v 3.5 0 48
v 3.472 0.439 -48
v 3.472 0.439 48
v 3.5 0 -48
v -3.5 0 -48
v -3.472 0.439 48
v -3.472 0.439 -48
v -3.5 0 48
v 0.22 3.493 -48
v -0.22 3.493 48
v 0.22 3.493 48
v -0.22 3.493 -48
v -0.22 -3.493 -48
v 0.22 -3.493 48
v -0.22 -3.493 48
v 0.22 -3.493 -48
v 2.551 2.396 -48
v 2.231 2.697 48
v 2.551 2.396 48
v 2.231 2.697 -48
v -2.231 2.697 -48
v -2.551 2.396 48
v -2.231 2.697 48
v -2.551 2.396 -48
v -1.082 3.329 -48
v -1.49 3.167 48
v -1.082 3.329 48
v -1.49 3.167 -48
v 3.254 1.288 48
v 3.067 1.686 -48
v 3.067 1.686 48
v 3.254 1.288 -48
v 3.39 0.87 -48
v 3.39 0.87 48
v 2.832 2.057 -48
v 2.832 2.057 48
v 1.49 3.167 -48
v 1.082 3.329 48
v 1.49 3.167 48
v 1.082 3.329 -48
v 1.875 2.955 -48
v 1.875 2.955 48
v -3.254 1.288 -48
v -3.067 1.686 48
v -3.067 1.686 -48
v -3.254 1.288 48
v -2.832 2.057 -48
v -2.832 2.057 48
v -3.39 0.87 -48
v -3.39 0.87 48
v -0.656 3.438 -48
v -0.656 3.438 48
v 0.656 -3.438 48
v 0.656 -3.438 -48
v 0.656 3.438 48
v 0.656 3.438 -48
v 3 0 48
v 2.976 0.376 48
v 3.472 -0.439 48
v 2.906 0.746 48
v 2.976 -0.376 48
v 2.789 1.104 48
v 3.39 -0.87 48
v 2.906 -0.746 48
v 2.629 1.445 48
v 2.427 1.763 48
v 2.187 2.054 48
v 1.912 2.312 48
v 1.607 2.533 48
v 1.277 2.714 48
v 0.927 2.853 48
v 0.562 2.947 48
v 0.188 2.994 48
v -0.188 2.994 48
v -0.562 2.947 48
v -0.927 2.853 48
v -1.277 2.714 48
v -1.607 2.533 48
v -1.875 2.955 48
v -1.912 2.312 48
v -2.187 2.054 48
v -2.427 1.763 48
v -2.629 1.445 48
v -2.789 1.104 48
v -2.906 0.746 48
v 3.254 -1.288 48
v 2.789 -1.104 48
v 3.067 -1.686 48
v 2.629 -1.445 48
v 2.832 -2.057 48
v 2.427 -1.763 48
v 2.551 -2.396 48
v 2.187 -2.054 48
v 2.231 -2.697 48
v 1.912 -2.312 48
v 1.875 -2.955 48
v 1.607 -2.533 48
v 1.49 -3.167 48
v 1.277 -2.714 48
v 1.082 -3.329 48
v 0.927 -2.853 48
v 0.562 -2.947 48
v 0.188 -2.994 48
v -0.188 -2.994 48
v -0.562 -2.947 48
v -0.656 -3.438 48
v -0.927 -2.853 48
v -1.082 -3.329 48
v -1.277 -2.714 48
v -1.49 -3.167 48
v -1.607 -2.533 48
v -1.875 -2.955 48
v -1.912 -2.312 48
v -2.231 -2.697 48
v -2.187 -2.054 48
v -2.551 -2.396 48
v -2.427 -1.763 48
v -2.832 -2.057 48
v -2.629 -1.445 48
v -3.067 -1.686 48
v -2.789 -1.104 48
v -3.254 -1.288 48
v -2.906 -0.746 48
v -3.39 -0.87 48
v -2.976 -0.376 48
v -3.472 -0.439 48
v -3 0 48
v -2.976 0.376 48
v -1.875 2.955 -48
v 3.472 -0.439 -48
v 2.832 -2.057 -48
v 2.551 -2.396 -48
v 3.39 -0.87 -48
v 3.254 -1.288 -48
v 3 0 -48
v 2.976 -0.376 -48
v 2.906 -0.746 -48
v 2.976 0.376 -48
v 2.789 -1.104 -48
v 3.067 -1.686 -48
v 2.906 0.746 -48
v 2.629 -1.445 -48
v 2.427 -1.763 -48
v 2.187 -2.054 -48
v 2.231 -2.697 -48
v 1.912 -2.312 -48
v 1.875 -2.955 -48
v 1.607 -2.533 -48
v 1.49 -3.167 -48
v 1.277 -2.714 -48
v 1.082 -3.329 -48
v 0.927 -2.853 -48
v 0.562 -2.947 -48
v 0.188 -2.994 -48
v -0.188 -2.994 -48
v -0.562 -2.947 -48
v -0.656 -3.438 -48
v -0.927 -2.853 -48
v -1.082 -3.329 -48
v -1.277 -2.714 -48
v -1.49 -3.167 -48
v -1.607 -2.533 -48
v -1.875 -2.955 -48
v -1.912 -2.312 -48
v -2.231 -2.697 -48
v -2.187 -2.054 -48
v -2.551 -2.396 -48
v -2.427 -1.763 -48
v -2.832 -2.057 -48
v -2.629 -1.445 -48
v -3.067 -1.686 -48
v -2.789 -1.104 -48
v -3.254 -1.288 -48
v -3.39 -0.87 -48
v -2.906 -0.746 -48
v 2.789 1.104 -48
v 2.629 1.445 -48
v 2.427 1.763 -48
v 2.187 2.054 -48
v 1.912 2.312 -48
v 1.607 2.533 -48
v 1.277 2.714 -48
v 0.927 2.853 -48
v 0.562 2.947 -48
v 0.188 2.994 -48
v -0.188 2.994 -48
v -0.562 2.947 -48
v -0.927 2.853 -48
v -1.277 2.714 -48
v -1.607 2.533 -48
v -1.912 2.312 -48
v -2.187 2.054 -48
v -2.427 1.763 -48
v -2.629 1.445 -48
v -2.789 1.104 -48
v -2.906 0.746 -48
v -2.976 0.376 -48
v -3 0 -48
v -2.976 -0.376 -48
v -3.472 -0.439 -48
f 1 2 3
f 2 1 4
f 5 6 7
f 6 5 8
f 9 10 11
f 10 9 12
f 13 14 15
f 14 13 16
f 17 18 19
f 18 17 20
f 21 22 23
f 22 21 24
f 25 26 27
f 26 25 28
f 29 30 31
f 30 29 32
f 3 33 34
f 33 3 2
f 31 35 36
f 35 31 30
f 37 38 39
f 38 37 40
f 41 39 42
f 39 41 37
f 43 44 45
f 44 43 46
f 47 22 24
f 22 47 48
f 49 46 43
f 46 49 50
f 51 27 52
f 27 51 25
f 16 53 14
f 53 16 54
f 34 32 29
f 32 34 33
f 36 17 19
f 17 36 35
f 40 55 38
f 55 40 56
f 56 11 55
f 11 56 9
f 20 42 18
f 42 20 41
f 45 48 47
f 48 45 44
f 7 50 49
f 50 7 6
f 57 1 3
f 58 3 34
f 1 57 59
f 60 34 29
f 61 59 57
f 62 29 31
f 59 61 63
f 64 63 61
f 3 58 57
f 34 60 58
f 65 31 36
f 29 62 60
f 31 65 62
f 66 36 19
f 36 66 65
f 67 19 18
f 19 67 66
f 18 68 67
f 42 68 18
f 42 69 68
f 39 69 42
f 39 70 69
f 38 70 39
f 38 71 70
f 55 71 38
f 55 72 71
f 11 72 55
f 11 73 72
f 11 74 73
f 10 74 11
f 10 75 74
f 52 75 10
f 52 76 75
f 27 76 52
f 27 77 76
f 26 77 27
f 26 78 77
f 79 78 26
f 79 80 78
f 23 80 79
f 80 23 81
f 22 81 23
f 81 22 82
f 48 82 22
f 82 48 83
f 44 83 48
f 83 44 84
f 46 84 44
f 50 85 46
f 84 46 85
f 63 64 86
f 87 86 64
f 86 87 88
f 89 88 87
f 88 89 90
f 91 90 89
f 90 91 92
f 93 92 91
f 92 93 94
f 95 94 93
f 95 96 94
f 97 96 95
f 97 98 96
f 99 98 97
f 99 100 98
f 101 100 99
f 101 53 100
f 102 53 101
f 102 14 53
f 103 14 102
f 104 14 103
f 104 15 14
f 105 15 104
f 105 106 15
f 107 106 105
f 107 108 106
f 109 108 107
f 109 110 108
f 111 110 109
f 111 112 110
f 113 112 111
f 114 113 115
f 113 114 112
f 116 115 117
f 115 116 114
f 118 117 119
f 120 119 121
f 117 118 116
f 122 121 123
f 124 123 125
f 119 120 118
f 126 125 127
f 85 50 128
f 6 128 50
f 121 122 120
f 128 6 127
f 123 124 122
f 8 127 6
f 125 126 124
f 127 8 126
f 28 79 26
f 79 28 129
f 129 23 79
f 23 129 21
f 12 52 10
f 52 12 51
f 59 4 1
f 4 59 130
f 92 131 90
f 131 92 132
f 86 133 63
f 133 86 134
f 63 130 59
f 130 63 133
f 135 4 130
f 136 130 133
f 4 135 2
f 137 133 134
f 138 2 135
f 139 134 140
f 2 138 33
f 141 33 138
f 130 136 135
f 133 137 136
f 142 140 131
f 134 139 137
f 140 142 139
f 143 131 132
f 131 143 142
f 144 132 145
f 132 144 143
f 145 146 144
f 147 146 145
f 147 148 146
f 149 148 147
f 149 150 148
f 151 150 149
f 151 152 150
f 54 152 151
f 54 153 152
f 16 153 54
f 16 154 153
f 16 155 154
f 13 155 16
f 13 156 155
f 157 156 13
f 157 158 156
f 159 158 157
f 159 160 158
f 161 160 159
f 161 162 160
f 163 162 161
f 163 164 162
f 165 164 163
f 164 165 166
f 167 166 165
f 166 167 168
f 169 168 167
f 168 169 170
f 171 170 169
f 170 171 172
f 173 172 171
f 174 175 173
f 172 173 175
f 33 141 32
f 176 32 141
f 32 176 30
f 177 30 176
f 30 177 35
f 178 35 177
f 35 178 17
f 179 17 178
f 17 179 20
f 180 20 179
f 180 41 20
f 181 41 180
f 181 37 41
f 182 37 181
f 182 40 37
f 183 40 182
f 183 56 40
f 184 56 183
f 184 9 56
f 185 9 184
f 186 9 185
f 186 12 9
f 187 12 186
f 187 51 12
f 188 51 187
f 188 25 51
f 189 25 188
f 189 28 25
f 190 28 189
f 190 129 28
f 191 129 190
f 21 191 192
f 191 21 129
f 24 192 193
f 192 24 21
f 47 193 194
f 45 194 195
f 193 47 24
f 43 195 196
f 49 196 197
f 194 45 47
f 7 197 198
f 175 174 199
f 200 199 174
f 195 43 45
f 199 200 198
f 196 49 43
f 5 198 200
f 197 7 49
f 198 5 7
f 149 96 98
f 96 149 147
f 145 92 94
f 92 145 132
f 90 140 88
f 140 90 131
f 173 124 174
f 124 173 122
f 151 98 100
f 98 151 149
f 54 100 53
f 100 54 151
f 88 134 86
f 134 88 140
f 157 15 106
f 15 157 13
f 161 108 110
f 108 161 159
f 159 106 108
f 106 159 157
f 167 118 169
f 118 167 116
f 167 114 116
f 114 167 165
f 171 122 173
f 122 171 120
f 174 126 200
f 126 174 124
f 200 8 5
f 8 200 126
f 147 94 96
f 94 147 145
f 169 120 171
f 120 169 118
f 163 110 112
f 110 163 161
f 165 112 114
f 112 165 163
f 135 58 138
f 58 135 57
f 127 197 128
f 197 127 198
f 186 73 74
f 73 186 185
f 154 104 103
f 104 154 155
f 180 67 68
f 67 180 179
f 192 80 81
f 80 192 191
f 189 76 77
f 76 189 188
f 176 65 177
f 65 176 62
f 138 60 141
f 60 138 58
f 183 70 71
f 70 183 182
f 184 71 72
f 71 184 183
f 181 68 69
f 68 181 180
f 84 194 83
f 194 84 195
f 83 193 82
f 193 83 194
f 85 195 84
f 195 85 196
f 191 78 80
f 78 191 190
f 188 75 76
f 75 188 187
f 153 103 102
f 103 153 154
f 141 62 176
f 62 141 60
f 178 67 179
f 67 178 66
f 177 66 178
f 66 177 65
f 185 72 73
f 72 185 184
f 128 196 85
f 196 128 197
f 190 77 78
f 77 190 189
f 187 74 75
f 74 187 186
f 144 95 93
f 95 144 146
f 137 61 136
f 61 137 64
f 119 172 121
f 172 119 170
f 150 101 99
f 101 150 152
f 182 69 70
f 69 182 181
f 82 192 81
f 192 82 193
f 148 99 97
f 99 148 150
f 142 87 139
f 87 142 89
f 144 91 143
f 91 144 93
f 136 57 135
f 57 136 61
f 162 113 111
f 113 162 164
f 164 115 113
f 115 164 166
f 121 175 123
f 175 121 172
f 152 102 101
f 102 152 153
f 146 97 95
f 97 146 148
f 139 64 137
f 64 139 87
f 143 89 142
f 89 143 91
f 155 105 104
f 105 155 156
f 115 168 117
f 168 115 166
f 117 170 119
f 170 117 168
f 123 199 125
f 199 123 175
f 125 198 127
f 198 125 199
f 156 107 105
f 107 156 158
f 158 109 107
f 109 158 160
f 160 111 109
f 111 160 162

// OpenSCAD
$fn = 50;


difference() {
	union() {
		translate(v = [0, 0, -48.0000000000]) {
			cylinder(h = 96, r = 3.5000000000);
		}
	}
	union() {
		translate(v = [0, 0, -100.0000000000]) {
			cylinder(h = 200, r = 3);
		}
	}
}
